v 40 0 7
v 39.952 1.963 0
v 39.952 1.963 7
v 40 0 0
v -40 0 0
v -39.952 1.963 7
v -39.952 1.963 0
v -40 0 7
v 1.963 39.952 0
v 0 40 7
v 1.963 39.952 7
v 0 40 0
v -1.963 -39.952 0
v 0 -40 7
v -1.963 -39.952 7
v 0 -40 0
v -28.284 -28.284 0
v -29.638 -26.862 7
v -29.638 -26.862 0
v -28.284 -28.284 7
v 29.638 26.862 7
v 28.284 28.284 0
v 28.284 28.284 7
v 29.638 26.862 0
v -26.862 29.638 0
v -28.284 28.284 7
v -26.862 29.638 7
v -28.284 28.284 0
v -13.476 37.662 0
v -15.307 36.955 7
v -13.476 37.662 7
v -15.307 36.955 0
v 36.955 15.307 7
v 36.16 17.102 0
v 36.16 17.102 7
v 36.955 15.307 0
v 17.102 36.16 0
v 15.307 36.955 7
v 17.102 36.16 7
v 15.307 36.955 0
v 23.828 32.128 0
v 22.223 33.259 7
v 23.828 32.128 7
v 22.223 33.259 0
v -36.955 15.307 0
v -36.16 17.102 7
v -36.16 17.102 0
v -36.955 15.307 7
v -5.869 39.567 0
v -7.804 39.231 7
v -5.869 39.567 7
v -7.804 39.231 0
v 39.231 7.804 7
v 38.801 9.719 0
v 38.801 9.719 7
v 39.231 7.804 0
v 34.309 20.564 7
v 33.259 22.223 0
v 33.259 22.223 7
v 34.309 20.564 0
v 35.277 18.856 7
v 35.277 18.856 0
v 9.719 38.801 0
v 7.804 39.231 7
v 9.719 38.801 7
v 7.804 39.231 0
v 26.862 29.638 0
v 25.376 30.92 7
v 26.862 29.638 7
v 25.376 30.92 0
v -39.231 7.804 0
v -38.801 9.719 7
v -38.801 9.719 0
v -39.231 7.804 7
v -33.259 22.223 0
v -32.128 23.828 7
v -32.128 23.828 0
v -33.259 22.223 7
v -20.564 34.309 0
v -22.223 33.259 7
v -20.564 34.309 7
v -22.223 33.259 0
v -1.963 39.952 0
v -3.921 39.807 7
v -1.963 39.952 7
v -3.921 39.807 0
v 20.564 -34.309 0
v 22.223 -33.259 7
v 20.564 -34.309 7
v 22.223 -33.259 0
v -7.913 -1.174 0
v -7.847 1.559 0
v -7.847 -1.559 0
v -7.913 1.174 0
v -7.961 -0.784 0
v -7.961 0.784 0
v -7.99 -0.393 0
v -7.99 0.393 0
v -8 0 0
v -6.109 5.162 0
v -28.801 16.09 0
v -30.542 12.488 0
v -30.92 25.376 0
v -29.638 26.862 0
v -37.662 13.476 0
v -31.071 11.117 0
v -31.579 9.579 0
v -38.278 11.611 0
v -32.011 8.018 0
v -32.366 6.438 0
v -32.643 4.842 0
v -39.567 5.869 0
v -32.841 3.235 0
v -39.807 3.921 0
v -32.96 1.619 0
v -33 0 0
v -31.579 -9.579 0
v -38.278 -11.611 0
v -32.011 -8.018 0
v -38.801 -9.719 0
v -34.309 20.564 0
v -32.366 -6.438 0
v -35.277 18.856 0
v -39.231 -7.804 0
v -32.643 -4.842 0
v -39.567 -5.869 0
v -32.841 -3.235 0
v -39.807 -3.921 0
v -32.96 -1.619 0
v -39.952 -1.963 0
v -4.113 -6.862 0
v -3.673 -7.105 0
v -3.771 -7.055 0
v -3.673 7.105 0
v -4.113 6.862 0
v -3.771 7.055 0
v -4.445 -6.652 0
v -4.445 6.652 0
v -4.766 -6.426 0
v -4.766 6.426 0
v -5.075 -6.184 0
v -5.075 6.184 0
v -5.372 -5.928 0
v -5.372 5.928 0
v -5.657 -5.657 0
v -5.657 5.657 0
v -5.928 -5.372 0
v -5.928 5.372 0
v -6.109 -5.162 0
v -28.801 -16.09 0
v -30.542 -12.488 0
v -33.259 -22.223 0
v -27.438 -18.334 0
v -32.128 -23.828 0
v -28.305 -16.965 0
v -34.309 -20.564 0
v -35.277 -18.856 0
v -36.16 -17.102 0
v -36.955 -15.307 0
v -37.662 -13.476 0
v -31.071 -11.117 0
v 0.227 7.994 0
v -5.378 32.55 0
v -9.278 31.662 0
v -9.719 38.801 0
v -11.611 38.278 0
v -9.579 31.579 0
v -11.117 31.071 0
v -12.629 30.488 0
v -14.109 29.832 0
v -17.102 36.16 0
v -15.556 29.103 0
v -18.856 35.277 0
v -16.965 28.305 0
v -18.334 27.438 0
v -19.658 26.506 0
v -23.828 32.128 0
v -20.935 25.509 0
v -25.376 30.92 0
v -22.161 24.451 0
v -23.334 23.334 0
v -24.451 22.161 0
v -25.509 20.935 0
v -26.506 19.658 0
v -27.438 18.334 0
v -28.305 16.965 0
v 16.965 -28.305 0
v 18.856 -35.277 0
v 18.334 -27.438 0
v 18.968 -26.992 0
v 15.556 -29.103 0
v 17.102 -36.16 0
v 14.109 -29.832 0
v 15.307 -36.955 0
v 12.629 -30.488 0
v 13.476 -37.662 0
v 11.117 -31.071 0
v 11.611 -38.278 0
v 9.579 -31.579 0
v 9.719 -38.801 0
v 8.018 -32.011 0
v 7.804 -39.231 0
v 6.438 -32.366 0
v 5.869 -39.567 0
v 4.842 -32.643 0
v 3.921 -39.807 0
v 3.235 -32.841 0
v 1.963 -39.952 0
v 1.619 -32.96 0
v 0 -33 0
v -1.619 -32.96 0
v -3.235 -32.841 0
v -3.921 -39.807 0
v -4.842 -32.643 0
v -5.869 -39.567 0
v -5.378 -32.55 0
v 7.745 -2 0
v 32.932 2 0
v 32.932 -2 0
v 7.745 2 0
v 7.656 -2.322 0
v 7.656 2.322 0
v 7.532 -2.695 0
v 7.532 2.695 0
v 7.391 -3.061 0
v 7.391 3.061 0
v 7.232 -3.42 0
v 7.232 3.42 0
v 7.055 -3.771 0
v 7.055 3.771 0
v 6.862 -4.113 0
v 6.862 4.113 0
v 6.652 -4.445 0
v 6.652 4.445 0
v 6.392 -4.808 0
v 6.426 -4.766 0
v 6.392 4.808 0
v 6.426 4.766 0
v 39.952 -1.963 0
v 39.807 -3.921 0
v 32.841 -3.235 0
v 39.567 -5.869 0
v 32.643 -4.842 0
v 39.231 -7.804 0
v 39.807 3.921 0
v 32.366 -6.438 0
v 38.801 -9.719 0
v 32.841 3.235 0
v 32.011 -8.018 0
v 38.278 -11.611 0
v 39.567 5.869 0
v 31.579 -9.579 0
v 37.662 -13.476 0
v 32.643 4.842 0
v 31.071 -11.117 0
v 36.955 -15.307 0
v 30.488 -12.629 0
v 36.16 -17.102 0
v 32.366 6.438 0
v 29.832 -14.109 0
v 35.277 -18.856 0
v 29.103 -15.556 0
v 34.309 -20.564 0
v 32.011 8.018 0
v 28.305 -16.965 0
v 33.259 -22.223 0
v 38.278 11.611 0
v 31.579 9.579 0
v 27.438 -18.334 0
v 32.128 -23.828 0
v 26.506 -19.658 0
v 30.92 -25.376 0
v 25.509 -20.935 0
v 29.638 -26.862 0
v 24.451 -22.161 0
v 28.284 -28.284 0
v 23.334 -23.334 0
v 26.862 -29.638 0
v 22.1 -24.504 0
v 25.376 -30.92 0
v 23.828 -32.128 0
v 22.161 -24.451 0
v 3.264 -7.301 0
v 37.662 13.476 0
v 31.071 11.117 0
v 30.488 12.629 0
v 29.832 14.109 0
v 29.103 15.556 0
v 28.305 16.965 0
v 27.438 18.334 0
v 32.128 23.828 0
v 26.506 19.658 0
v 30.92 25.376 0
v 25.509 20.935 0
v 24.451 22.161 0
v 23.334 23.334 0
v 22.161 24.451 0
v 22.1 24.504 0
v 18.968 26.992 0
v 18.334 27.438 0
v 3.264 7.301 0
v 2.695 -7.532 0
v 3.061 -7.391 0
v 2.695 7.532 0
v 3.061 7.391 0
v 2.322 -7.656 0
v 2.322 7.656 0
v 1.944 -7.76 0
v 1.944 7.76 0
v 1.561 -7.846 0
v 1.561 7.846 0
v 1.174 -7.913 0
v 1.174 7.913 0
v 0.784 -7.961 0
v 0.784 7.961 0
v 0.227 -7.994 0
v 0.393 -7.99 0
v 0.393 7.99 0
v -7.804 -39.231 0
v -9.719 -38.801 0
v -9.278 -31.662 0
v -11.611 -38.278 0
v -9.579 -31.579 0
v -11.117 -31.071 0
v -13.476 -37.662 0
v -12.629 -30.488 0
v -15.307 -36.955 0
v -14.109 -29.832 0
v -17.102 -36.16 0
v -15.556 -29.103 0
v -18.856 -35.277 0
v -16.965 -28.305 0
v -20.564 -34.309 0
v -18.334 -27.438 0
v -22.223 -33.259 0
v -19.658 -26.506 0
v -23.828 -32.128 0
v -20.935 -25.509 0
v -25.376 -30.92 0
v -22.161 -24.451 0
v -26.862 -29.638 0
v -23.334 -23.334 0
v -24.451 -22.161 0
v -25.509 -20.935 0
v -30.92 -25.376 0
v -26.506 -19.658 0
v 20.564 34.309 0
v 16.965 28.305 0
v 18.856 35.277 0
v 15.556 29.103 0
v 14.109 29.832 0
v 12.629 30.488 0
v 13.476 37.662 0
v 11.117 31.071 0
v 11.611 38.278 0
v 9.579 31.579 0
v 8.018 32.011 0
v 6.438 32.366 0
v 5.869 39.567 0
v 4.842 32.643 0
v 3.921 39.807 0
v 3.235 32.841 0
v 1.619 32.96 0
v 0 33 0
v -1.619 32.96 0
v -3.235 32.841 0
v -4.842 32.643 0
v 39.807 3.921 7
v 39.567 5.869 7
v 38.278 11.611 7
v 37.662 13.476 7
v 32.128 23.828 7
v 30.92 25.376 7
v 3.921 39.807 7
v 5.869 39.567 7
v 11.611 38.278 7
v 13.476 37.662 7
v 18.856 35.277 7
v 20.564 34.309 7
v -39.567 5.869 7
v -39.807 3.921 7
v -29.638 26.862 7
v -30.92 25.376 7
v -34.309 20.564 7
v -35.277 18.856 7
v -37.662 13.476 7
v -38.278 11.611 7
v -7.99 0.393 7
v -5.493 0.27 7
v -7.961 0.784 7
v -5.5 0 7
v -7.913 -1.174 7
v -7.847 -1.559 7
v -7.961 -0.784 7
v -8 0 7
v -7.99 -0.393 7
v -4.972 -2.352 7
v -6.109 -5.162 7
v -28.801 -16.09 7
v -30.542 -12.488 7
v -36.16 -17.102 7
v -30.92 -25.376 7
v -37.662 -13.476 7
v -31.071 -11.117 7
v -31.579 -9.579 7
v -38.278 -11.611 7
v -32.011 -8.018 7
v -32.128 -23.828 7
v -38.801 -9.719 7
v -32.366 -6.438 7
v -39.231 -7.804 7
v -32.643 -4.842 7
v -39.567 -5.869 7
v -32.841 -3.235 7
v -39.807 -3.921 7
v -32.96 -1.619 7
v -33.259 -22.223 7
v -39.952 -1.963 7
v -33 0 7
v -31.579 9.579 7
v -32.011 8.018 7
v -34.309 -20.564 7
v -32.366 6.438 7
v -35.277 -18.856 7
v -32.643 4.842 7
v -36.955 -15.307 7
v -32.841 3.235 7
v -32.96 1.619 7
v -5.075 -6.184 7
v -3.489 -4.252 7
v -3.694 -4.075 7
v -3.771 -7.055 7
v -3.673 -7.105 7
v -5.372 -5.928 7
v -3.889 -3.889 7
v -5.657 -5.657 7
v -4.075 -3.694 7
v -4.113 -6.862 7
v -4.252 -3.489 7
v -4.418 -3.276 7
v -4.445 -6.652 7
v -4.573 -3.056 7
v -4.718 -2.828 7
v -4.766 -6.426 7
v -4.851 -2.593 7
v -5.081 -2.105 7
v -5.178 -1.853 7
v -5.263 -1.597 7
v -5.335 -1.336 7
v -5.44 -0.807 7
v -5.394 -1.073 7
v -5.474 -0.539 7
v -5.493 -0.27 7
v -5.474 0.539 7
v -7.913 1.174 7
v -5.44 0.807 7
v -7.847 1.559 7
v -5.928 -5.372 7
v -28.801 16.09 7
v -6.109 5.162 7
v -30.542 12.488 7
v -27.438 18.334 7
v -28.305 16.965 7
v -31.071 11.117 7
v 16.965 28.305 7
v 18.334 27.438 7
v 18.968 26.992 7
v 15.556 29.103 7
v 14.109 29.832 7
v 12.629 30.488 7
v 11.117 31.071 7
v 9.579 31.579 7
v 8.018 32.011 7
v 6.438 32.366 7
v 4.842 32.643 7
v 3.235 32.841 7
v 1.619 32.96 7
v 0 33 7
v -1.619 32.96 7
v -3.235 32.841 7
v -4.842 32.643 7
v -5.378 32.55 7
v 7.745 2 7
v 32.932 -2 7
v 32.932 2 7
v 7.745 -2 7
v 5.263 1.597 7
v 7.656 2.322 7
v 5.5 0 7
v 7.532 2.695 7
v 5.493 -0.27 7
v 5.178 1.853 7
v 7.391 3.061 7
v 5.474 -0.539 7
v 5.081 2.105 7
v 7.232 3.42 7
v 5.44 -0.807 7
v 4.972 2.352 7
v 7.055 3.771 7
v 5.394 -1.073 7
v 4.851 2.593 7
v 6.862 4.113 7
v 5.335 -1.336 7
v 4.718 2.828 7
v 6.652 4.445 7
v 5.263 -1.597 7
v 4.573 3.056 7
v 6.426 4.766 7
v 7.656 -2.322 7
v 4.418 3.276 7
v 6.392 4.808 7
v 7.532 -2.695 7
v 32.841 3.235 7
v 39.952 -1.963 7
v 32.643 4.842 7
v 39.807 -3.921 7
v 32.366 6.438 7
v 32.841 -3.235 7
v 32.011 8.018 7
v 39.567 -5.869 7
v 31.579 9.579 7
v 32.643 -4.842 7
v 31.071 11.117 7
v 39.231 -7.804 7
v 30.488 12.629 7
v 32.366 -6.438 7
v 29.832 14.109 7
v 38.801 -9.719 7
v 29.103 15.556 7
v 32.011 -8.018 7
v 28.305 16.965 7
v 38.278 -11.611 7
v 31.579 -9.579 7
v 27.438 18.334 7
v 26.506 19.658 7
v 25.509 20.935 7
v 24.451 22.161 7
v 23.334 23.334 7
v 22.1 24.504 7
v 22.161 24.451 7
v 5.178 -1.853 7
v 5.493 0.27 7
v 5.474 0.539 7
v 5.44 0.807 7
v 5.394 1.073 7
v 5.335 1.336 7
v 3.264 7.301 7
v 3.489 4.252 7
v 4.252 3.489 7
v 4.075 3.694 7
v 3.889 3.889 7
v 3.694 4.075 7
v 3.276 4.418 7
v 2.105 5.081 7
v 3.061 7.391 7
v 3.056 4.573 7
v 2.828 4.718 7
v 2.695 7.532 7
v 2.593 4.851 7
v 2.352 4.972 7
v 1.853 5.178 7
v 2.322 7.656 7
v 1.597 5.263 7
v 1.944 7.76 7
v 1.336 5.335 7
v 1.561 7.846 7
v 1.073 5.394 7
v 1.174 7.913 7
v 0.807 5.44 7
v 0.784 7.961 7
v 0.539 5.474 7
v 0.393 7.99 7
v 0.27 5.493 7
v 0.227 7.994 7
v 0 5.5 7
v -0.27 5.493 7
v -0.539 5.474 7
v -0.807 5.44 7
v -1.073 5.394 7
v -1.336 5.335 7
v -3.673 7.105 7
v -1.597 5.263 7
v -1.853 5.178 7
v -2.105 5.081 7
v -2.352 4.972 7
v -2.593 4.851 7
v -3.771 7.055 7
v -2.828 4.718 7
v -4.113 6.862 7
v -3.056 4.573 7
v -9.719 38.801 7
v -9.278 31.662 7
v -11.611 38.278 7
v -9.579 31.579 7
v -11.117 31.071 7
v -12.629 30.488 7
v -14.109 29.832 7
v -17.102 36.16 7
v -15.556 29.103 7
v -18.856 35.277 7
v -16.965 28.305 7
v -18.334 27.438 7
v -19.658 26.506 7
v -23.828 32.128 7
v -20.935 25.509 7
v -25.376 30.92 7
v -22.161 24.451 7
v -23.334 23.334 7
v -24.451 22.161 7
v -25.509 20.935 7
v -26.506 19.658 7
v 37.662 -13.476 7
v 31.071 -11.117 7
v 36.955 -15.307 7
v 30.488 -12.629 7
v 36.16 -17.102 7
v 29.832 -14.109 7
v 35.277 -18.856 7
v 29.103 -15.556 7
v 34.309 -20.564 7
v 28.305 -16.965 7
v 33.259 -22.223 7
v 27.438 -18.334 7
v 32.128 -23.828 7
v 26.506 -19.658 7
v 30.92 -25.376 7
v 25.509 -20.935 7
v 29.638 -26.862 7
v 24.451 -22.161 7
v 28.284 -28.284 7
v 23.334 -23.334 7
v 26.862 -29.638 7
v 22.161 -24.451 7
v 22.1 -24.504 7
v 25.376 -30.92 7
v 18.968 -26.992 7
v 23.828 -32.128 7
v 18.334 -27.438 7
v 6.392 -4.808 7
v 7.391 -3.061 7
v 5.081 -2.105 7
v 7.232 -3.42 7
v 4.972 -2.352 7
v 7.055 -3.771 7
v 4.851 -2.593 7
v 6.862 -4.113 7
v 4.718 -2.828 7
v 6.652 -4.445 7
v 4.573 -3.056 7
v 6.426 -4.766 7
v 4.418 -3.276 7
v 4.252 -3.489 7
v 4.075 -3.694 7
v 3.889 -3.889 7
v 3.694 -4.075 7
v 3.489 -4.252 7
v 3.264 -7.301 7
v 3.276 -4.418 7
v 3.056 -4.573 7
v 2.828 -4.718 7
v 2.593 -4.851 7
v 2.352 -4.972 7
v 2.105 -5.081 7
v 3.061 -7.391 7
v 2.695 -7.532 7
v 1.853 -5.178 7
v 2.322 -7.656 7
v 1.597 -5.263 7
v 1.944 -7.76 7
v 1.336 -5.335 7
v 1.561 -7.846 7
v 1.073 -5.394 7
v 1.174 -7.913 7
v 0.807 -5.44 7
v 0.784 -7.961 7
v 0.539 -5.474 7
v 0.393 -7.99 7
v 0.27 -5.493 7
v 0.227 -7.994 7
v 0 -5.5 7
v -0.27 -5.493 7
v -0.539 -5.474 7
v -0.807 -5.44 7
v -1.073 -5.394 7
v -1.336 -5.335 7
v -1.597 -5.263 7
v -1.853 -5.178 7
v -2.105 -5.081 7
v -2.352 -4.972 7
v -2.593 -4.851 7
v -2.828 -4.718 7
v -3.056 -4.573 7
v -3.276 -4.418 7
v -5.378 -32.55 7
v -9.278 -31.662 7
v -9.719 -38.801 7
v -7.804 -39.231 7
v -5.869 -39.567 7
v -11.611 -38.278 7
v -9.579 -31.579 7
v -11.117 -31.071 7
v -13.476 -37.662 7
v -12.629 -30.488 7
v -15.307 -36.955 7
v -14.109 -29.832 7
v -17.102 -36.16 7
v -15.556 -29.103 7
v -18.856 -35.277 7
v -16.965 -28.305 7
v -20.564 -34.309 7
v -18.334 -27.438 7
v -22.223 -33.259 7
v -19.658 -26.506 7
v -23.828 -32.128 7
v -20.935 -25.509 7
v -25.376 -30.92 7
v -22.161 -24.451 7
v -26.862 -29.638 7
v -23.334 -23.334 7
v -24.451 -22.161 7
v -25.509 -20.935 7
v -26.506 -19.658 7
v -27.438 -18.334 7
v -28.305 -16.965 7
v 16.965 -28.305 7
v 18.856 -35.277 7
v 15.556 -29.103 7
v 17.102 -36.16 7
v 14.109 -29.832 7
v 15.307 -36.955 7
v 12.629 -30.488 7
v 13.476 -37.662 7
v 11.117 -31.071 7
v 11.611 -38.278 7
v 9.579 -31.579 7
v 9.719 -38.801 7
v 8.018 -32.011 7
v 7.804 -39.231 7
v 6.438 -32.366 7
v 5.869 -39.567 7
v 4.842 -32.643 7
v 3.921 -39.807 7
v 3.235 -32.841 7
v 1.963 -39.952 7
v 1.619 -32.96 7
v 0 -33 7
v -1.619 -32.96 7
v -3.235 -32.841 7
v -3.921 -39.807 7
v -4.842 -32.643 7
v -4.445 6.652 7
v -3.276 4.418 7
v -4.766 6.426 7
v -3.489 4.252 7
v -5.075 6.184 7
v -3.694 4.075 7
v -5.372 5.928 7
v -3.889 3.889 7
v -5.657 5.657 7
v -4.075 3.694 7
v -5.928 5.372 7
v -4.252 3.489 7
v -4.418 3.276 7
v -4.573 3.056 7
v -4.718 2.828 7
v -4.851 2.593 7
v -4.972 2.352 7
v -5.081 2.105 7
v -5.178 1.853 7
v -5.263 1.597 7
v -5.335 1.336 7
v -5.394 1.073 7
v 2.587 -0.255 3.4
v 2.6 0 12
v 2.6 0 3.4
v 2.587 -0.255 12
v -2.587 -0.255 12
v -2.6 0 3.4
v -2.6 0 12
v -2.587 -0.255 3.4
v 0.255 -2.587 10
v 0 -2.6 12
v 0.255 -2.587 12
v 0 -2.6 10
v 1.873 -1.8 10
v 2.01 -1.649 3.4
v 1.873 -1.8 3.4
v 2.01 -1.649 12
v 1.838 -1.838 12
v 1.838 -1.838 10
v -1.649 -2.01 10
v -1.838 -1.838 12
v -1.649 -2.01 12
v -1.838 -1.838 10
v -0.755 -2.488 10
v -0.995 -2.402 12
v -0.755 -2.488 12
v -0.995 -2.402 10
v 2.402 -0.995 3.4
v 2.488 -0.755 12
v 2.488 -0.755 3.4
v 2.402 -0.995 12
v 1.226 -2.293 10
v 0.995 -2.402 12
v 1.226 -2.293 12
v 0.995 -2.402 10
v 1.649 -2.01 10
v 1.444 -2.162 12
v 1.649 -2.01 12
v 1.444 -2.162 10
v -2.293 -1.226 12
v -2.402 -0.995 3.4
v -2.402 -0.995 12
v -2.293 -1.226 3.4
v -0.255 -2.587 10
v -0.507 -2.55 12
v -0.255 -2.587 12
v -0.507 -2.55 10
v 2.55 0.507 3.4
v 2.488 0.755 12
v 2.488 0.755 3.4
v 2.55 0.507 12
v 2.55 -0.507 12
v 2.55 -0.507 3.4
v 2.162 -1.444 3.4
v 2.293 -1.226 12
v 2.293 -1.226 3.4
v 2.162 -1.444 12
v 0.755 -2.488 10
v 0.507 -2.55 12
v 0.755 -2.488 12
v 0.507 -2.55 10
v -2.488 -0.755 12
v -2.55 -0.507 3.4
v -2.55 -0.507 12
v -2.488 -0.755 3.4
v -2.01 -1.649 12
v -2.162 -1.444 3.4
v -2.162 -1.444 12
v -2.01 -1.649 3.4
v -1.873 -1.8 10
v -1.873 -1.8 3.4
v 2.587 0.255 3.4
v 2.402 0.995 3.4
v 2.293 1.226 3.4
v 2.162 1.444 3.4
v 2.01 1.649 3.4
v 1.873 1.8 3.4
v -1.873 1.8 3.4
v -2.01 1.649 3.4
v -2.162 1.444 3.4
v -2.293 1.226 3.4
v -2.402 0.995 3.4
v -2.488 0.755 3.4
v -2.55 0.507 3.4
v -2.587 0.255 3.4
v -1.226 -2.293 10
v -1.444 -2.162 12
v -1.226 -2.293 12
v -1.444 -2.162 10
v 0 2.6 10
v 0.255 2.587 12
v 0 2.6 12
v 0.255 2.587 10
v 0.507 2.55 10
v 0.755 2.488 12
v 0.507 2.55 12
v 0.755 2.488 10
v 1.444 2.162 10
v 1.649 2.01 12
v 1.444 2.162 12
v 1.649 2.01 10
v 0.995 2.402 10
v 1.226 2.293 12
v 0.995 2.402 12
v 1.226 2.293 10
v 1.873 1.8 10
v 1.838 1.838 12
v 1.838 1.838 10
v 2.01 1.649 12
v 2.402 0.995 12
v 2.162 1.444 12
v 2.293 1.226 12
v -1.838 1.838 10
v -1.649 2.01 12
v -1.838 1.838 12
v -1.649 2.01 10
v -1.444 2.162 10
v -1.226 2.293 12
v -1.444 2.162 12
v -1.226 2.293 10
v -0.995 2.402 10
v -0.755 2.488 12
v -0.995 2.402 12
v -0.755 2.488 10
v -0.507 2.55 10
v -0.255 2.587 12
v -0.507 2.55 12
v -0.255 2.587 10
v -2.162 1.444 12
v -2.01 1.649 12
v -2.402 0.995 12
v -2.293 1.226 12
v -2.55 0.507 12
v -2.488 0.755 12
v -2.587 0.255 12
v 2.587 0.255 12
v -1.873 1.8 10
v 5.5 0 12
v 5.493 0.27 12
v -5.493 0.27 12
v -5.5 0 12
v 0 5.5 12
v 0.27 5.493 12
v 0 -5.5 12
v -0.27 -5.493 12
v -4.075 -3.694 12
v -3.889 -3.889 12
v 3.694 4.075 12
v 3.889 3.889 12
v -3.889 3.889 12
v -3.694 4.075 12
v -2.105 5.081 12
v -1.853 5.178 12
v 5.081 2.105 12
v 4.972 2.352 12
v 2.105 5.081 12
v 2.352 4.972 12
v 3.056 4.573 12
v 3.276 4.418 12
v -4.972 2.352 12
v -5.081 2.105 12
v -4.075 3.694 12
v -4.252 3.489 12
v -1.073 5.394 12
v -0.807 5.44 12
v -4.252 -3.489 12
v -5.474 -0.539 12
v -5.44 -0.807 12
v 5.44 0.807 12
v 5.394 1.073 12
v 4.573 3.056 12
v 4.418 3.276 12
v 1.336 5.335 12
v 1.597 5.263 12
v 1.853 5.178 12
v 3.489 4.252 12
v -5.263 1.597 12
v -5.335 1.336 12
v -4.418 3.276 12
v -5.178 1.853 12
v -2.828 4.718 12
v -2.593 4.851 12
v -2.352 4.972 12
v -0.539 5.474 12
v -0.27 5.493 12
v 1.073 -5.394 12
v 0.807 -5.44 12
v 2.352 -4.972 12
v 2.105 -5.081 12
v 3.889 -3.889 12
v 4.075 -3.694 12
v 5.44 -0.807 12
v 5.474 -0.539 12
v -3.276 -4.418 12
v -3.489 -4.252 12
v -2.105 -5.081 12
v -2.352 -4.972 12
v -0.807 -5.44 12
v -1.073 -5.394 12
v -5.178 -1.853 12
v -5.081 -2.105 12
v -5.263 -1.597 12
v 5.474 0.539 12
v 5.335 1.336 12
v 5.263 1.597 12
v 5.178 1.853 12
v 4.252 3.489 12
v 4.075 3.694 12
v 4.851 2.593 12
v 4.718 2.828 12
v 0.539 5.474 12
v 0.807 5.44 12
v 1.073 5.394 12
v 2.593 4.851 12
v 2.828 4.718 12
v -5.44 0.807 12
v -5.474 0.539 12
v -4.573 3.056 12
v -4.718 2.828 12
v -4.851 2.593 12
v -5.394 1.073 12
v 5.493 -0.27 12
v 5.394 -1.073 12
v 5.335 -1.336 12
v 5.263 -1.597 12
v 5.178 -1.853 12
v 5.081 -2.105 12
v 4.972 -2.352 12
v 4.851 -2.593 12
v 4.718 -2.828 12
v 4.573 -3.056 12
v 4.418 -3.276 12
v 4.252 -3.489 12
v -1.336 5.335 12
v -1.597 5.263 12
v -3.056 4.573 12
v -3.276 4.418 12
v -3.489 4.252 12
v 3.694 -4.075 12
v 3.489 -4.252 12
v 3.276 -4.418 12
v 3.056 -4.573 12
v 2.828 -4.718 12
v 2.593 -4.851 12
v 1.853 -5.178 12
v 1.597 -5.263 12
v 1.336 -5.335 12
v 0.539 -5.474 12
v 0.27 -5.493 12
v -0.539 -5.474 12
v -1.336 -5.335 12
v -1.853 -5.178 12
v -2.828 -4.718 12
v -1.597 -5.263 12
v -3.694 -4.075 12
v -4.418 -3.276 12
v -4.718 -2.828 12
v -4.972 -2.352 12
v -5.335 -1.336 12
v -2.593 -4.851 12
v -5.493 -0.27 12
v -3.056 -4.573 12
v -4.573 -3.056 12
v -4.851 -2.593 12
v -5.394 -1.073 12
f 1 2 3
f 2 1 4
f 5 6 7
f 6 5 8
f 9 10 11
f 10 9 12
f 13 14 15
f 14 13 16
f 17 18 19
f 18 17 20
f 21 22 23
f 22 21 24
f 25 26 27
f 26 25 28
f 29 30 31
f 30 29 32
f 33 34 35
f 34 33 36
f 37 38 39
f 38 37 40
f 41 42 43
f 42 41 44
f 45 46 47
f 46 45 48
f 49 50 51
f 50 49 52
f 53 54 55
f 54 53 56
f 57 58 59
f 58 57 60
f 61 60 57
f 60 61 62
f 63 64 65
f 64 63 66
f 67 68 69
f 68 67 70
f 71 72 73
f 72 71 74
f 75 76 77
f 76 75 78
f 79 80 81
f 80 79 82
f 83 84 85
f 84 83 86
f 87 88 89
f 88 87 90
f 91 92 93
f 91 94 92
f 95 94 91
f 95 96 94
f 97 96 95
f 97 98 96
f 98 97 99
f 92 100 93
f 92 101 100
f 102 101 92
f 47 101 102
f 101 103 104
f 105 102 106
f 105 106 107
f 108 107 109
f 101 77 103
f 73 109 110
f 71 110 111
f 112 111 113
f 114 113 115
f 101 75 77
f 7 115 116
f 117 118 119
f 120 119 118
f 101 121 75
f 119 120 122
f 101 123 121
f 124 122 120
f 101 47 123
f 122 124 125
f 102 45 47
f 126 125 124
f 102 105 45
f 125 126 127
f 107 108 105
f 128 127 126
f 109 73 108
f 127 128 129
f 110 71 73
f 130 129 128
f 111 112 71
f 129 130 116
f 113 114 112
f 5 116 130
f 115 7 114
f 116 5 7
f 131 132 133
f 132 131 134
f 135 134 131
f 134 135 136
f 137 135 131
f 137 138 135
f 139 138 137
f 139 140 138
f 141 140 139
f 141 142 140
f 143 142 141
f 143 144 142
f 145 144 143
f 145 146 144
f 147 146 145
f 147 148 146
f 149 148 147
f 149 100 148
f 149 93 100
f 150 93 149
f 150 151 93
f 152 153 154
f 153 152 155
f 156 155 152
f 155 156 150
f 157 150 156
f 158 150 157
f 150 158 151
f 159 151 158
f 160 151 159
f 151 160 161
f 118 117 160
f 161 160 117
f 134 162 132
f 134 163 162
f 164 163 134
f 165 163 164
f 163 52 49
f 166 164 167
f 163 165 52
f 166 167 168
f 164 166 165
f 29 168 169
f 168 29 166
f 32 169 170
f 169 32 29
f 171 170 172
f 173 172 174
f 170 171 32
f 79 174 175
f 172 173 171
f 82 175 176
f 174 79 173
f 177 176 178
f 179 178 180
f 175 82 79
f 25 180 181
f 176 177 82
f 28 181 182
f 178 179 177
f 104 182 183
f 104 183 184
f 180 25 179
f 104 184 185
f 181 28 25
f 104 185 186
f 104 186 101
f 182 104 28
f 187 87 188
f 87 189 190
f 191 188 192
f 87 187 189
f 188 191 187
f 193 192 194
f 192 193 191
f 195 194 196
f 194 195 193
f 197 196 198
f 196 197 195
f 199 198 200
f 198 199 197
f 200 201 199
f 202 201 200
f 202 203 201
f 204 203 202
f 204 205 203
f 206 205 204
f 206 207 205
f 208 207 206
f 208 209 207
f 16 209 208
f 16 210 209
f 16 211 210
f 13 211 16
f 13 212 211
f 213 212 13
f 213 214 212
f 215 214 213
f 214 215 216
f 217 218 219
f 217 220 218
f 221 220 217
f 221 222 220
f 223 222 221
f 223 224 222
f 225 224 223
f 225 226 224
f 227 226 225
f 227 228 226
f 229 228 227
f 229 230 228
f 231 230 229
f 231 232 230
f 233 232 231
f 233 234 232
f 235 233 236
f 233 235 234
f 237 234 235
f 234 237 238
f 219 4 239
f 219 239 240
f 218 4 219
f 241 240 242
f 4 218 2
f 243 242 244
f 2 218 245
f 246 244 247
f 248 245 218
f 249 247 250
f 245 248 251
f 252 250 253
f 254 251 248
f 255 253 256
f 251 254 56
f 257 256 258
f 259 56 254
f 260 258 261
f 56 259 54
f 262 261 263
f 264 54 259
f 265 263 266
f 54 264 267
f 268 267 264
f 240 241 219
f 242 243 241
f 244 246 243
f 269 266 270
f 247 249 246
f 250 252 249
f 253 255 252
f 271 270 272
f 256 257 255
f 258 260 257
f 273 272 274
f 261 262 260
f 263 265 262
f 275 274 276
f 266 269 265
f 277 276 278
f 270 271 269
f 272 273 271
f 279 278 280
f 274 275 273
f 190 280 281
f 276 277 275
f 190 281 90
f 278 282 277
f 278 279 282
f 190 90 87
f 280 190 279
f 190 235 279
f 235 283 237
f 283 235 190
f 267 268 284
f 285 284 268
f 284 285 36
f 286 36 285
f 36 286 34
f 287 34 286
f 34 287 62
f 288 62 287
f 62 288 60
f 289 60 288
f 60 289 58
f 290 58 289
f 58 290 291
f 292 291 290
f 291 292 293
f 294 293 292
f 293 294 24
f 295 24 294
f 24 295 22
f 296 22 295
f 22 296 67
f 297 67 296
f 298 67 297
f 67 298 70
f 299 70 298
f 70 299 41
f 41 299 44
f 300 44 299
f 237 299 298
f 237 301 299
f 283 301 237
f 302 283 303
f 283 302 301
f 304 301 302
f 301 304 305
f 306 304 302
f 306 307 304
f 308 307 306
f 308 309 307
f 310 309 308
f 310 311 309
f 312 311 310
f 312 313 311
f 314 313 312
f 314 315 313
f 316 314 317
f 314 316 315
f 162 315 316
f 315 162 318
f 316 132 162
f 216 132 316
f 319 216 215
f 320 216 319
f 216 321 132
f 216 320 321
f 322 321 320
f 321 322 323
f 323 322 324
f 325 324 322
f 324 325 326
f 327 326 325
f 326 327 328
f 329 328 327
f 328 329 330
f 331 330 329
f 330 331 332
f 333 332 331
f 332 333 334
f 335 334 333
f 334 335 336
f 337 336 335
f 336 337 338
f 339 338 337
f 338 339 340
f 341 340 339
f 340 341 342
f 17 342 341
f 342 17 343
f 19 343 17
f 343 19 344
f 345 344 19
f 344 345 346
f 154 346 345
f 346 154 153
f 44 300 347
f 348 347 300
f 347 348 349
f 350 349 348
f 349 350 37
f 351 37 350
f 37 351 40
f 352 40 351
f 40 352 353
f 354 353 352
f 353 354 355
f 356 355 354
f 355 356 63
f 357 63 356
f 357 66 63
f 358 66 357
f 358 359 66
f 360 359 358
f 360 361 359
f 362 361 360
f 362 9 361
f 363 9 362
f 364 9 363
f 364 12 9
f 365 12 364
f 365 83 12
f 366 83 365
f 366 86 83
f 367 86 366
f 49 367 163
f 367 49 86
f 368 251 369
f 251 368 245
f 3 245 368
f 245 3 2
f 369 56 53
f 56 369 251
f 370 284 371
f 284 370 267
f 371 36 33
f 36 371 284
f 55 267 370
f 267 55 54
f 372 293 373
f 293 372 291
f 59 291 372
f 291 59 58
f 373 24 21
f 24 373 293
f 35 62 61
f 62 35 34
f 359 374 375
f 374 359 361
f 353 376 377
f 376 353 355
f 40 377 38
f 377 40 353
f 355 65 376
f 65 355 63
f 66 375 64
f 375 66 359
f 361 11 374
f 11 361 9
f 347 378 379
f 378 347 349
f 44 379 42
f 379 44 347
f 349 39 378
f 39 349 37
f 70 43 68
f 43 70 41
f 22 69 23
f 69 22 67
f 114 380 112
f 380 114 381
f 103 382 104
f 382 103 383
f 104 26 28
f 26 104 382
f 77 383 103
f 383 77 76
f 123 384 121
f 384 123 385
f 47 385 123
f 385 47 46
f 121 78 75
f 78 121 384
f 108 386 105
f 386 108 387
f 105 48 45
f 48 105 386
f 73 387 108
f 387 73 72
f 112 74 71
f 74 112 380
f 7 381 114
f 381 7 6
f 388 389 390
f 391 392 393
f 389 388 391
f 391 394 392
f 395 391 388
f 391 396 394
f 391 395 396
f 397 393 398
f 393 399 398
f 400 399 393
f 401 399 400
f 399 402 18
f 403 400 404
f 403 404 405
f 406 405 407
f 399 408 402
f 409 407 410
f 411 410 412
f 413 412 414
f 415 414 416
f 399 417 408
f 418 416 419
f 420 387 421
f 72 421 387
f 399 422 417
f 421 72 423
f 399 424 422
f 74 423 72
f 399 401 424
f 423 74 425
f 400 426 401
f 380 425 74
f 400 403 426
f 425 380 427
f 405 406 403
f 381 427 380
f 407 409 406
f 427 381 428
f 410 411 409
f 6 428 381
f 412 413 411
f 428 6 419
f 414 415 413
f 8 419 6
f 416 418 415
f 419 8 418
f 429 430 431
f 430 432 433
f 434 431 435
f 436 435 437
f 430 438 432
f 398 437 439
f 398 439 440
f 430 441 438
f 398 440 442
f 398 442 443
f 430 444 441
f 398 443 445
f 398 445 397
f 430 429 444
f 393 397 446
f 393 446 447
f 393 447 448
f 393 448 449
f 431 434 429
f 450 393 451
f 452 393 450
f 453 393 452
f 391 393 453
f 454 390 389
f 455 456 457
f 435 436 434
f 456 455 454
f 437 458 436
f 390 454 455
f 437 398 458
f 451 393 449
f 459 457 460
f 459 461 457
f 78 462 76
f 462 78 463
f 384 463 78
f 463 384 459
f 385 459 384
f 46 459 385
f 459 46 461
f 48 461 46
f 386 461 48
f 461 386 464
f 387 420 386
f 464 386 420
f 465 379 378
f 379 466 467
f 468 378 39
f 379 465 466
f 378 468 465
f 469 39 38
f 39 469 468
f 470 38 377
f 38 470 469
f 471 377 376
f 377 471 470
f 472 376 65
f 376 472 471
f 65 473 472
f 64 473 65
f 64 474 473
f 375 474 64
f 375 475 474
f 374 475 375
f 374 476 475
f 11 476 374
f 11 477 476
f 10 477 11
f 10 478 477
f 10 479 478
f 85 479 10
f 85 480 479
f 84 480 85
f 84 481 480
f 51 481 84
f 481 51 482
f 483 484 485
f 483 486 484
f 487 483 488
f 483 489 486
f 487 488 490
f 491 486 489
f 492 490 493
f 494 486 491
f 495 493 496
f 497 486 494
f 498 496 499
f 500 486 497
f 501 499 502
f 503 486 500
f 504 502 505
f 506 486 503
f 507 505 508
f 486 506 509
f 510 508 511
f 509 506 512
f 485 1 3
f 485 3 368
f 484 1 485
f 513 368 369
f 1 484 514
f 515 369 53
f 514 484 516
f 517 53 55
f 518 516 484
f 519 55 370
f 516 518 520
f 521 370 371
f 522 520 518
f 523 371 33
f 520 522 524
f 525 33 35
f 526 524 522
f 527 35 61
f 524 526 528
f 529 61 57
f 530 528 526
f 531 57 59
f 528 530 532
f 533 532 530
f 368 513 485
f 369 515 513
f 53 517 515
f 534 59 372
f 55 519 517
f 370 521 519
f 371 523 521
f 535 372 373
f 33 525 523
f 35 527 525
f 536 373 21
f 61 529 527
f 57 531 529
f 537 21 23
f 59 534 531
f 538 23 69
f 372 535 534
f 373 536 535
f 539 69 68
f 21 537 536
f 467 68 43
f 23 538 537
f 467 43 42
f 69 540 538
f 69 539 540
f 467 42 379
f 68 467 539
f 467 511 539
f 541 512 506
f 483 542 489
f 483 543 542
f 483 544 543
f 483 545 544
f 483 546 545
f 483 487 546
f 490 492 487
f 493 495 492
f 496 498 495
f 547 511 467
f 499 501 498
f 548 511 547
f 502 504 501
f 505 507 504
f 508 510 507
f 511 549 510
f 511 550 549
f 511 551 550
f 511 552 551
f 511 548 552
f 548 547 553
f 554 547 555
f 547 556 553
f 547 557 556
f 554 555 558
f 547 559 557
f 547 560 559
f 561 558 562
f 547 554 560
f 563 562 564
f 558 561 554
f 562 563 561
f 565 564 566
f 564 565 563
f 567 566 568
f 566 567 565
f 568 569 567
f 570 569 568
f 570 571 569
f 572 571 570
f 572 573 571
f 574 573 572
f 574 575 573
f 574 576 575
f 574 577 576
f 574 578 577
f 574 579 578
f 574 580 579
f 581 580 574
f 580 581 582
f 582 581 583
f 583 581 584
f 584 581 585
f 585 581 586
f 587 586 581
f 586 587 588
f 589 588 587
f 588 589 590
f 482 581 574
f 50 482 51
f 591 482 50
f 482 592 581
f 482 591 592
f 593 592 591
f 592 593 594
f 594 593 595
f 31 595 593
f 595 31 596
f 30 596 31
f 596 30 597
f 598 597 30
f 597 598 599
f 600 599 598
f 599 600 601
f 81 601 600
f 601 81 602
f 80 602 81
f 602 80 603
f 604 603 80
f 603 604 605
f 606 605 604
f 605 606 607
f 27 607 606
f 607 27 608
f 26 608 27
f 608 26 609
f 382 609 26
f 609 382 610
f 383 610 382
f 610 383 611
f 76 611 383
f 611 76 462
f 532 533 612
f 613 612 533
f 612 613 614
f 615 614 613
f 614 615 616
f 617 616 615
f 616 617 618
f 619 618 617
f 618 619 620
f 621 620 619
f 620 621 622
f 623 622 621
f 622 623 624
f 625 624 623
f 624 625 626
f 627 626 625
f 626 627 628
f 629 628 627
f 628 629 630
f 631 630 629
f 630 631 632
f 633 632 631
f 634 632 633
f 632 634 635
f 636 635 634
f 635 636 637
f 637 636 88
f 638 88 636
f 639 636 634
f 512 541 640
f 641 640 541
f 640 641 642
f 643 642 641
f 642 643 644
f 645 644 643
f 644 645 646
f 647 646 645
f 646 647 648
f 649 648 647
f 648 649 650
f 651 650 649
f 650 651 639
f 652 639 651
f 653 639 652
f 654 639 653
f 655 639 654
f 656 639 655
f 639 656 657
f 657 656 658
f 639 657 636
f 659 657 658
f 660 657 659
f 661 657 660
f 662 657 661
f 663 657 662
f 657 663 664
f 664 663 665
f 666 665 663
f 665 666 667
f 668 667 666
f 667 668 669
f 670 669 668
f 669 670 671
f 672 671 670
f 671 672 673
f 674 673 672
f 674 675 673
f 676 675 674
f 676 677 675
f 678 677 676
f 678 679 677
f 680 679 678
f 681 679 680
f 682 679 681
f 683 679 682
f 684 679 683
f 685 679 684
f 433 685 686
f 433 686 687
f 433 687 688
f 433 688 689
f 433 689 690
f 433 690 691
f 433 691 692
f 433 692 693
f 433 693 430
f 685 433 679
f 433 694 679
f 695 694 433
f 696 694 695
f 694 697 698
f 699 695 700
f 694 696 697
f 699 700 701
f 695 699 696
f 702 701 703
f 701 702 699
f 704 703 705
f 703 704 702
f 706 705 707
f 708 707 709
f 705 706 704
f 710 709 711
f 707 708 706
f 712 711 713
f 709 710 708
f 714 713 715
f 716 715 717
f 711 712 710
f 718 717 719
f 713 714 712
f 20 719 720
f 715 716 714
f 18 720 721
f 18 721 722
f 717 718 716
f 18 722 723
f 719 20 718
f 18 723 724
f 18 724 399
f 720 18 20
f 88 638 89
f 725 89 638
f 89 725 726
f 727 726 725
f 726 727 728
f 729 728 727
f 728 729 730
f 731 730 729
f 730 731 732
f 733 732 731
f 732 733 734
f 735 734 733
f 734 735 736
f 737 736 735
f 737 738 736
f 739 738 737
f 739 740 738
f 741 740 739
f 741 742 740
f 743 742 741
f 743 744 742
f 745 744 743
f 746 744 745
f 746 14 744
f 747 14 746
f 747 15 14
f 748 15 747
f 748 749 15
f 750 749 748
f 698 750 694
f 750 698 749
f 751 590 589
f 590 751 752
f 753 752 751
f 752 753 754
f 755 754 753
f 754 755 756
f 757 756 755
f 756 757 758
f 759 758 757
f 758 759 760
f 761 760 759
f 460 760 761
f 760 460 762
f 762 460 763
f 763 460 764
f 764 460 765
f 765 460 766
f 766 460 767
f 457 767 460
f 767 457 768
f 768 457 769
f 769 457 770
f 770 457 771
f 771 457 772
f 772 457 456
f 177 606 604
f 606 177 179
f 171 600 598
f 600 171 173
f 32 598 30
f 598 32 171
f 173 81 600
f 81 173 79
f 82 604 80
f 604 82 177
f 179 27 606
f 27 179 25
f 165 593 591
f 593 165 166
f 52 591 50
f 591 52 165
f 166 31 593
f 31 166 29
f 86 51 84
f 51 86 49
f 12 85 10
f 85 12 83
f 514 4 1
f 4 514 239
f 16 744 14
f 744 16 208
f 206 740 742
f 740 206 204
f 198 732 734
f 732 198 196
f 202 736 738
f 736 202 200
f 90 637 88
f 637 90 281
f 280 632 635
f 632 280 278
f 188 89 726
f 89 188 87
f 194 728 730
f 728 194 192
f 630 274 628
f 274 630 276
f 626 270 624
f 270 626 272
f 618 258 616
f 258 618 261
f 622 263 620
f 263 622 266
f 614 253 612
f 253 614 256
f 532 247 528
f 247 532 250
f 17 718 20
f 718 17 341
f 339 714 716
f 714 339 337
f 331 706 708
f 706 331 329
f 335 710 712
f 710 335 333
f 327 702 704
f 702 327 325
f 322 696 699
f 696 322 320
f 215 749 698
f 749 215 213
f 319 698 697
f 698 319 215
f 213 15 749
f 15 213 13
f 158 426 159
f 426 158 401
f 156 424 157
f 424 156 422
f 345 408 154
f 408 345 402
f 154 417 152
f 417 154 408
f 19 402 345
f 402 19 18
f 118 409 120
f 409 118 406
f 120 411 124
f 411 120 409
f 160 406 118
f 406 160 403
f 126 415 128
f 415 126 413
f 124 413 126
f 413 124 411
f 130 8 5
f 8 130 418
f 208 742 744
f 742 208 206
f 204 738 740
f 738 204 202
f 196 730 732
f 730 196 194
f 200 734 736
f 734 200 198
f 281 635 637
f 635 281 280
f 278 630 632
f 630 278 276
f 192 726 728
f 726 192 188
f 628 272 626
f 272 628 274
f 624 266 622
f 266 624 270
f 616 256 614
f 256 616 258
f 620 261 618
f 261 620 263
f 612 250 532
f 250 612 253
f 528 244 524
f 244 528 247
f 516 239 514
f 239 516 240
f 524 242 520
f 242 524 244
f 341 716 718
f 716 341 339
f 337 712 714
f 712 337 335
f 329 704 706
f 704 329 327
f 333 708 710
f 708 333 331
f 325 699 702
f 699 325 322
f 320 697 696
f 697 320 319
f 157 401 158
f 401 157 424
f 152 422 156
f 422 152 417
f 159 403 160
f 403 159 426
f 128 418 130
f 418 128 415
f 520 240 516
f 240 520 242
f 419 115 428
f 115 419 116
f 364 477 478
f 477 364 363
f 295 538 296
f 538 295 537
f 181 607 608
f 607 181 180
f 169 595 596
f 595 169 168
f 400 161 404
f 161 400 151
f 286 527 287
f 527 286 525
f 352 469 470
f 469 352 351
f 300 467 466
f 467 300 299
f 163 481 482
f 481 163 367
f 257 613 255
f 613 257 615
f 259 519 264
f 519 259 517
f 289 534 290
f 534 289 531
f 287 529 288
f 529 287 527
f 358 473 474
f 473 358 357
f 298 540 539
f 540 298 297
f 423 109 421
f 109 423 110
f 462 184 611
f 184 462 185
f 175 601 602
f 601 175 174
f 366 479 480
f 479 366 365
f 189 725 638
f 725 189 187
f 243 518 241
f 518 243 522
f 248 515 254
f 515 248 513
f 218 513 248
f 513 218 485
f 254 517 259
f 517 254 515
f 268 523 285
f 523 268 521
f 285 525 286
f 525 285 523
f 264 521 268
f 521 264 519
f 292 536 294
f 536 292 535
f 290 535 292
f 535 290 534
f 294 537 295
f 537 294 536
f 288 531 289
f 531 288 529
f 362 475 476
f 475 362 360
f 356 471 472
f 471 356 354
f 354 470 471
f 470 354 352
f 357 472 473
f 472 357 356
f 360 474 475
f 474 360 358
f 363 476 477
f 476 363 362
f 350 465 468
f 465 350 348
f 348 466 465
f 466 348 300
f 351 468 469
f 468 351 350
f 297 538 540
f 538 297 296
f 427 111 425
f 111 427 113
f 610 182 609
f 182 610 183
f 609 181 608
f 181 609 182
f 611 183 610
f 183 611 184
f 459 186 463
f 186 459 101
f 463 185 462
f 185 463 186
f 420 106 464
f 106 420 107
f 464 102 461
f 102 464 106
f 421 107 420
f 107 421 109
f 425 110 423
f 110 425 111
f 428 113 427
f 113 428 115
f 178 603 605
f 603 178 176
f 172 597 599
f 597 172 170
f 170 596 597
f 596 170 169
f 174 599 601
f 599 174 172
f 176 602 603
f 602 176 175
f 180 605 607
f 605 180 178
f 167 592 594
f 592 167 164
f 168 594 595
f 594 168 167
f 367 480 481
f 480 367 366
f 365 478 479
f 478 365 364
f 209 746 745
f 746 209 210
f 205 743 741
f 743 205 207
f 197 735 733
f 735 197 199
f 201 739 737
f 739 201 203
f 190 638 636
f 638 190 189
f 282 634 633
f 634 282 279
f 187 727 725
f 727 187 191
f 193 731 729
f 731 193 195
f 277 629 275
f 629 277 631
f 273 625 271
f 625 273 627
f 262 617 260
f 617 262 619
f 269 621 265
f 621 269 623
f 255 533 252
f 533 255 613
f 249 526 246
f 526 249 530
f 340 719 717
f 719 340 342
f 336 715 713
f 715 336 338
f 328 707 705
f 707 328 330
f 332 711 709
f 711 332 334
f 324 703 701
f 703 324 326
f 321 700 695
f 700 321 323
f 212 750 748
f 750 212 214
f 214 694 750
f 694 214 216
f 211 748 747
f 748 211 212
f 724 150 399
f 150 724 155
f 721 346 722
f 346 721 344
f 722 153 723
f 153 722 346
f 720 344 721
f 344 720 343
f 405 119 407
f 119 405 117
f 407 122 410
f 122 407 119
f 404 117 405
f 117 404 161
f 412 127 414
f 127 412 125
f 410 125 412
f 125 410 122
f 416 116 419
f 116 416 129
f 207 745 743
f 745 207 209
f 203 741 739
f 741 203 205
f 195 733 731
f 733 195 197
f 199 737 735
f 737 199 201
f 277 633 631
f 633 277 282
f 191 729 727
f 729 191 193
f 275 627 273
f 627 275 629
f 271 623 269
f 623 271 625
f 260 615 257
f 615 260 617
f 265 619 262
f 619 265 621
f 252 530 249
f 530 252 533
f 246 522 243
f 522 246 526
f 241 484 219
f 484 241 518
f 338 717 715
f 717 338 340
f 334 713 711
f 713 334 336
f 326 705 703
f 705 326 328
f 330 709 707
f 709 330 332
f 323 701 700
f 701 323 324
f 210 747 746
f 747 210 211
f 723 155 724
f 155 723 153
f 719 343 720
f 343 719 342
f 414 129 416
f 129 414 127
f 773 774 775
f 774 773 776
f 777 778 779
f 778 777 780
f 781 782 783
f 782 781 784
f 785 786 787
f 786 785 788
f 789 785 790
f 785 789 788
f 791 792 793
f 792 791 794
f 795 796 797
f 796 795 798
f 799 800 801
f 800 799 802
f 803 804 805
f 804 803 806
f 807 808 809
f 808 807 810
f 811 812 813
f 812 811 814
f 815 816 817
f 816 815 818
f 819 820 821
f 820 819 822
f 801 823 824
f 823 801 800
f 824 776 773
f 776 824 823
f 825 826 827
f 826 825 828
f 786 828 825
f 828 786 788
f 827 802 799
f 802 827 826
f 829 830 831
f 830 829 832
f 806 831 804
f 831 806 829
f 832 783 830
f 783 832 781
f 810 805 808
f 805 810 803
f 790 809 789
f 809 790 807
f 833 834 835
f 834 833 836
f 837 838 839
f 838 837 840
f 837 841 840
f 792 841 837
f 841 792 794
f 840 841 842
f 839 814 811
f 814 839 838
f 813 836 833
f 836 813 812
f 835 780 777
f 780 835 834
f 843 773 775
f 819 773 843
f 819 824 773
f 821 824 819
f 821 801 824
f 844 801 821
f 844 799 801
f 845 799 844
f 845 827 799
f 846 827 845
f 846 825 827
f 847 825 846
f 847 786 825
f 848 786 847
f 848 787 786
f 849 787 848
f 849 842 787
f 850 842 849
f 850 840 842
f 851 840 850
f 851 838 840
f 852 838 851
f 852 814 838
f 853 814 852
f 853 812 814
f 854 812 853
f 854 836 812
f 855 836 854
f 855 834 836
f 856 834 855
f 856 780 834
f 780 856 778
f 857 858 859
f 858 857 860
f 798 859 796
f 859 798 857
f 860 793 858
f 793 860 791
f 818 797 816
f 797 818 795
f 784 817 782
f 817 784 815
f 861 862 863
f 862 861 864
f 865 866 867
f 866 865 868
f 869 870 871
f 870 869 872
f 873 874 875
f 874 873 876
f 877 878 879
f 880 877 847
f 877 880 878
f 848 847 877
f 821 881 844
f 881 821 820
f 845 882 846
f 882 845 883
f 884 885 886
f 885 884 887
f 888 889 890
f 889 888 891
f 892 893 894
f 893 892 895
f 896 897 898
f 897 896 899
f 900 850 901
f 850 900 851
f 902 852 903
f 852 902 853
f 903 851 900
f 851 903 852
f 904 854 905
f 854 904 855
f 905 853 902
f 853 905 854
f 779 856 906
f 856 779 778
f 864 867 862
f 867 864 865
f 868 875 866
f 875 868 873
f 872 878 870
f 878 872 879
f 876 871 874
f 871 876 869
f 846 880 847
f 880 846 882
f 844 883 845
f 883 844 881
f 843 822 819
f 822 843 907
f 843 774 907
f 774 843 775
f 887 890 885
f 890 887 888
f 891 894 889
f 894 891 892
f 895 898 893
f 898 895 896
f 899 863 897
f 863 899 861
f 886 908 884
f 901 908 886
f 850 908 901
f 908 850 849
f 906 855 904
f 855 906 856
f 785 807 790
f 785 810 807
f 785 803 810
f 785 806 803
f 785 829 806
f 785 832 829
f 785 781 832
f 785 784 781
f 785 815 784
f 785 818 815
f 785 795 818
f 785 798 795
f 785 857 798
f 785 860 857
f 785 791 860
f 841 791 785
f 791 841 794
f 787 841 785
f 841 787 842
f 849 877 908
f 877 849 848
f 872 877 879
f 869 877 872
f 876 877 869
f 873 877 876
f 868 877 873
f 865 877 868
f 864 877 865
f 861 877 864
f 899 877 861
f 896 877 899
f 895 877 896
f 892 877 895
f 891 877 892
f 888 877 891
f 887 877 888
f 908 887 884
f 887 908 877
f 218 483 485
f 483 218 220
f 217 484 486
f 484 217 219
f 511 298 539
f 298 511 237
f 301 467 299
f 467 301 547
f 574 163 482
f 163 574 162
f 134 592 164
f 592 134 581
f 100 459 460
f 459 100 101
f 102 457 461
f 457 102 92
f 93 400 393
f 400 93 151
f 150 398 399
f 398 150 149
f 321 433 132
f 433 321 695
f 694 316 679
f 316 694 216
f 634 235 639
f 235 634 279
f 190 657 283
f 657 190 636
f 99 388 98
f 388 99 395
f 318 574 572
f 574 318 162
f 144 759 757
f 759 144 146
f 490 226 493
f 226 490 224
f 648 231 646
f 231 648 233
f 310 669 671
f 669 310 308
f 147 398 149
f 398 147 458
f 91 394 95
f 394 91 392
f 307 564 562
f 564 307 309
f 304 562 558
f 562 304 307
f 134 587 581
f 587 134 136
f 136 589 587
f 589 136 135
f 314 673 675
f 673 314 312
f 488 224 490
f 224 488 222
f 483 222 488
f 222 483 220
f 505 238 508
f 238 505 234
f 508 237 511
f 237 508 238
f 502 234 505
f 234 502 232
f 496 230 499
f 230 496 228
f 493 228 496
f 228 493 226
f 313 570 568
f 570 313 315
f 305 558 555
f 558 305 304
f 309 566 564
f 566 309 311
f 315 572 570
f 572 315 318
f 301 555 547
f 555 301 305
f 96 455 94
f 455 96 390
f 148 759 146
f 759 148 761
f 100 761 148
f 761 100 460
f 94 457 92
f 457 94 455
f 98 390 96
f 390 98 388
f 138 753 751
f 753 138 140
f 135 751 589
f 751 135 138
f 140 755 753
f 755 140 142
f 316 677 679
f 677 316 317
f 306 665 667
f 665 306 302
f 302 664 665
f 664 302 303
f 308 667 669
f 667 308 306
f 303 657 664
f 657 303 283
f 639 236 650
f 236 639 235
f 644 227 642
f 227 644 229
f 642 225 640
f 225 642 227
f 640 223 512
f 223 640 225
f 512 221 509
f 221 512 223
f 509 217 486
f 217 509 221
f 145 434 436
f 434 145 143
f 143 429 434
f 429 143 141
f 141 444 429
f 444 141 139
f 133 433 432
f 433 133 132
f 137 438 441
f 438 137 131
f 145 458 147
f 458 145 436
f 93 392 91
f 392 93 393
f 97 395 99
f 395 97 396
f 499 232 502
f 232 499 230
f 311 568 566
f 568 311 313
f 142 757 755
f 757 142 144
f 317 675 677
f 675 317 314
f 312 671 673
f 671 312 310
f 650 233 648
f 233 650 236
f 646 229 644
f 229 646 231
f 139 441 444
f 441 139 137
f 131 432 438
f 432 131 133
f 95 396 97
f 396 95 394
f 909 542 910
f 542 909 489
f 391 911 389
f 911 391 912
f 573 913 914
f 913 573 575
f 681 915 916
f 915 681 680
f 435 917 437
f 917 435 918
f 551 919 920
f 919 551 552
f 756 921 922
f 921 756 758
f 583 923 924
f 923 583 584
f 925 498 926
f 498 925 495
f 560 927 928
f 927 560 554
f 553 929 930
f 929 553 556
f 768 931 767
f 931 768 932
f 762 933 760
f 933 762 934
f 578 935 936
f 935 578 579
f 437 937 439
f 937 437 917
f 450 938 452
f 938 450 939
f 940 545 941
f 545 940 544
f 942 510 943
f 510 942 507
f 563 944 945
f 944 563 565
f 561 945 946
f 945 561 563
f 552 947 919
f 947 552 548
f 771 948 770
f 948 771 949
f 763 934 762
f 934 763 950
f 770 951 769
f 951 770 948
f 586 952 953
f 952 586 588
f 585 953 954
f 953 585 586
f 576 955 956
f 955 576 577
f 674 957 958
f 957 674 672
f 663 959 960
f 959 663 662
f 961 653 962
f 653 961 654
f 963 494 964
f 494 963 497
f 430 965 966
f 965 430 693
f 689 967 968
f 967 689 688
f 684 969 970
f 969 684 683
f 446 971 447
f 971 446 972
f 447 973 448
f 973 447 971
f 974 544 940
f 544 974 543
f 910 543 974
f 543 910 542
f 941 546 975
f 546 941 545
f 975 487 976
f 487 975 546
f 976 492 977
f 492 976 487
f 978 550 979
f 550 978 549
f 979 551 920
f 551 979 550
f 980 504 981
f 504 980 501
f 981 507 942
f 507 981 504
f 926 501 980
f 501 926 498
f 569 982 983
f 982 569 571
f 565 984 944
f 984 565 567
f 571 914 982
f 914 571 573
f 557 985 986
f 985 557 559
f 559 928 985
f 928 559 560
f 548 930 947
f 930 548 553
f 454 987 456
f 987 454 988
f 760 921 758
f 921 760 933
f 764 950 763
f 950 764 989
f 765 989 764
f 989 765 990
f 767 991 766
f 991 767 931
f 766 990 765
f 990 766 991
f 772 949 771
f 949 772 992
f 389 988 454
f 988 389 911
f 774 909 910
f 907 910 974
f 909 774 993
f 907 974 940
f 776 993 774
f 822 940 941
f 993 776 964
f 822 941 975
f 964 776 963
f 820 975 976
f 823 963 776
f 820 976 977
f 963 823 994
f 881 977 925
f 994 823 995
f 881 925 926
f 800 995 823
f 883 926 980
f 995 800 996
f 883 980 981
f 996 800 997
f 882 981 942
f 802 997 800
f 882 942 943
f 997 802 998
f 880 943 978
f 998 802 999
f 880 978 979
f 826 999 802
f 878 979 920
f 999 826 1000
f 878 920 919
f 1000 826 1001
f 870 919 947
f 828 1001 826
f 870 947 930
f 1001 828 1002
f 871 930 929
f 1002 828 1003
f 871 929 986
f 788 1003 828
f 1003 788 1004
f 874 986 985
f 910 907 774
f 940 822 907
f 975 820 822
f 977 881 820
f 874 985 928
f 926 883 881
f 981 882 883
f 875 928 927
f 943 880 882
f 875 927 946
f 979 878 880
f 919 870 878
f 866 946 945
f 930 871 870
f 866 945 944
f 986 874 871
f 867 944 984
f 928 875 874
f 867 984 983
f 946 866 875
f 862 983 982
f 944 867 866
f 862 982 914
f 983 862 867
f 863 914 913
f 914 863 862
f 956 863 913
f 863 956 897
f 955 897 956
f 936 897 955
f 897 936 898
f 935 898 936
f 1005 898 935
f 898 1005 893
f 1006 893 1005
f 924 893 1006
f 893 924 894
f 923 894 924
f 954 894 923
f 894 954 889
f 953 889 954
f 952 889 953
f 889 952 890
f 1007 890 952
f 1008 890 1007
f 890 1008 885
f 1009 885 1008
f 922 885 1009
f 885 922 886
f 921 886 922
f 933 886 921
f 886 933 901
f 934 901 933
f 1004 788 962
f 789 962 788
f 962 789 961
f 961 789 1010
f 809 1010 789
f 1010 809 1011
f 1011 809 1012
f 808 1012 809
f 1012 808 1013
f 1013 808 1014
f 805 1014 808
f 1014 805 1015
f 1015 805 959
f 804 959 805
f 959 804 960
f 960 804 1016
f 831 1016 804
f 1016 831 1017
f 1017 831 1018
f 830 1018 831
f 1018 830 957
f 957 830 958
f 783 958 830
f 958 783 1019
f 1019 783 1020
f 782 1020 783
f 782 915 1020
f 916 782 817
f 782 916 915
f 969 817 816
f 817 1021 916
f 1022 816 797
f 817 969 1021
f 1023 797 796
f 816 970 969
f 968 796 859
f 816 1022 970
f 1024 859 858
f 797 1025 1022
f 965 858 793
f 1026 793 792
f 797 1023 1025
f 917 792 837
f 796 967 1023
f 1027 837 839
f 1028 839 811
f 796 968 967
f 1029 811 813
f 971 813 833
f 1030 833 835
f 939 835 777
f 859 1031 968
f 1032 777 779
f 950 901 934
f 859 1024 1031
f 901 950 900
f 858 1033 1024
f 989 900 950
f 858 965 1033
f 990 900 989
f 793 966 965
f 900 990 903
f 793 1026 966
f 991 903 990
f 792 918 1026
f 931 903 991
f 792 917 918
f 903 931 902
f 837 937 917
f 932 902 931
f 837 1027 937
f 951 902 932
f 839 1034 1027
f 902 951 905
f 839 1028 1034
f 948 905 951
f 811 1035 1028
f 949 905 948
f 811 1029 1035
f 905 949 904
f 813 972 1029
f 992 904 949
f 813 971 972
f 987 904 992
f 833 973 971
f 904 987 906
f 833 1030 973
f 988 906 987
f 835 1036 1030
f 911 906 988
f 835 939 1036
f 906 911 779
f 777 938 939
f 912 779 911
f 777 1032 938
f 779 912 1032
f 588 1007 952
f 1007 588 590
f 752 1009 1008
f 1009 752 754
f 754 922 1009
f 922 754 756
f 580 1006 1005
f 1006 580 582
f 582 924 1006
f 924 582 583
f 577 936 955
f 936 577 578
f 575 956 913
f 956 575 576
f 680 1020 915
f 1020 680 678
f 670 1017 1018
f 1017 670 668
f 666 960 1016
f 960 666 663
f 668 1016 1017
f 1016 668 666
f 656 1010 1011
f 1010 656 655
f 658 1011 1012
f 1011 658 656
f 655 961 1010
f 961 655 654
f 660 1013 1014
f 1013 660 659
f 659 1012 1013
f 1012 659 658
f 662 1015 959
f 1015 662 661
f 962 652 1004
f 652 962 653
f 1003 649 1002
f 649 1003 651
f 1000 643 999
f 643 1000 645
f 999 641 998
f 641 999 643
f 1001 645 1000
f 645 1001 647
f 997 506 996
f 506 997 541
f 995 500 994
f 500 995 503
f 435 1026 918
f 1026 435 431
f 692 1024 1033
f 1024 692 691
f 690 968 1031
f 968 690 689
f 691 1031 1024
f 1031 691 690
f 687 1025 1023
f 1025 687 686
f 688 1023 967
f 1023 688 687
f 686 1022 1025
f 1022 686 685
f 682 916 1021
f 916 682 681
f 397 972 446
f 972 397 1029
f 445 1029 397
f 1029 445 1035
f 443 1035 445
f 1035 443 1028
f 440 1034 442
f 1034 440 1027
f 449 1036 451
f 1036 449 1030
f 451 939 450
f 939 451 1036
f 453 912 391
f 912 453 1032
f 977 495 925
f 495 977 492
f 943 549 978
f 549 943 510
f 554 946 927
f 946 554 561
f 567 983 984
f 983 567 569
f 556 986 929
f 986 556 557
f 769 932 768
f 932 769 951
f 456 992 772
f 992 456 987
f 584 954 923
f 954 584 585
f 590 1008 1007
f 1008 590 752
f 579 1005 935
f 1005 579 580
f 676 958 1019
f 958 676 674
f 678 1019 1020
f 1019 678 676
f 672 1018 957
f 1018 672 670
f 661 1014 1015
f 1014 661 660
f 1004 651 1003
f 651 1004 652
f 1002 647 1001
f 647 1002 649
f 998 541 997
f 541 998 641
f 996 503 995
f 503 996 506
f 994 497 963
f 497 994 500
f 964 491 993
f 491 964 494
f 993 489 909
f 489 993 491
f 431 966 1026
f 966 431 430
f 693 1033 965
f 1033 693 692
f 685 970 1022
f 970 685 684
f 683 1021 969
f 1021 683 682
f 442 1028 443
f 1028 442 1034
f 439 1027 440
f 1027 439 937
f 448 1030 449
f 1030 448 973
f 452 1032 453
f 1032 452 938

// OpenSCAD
// file: Wheel.scad
$fn = 128;

module wheel(spokeCount = 12) {
    module spoke() {
        translate([0, -2, 0]) cube([38, 4, 7]); 
        }

    union() {
        difference() {
            cylinder(h = 7, r = 40);
            translate([0,0,-1]) cylinder(h = 10, r = 33);
            }

        for (az = [0 : spokeCount])
            rotate([0, 0, az*(360/spokeCount)]) spoke(); 
        
        cylinder(h = 7, r = 8);
        cylinder(h = 12, r = 5.5);
        }
    }

wheel(3);
// file: StepperMotor28BYJ_48.scad
//MotorCut_28BYJ_48();
//AxisCut_28BYJ_48();

module MotorCut_28BYJ_48()
{
	union()
	{
		cylinder(d=29.2,h=25,$fn=64);
		translate([0,-10.6,12.5])
		cube([16,16,25], center=true);
		hull()
		{
			translate([17.5,0,0])
			cylinder(d=8, h=25, $fn=64);
			translate([-17.5,0,0])
			cylinder(d=8, h=25, $fn=64);
		}
		translate([17.5,0,-1])
		cylinder(d=3.8,h=50,$fn=64,center=true);
		translate([-17.5,0,-1])
		cylinder(d=3.8,h=50,$fn=64,center=true);
		translate([0,8,-12])
		cylinder(d=12,h=28,$fn=64,center=true);
	}
}

module AxisCut_28BYJ_48()
{
    translate([0,0,-2])
	difference()
	{
		cylinder(d=5.2,h=10.6,$fn=64);
		translate([0,4.8,8])
		cube([10,6,8], center=true);
		translate([0,-4.8,8])
		cube([10,6,8], center=true);
	}
}
// main file
use <StepperMotor28BYJ_48.scad>
use <Wheel.scad>

module wheel28BYJ_48(spokeCount = 12)
{
    difference()
    {
        wheel(spokeCount);
        translate([0,0,12])
            rotate([180,0,0])
                AxisCut_28BYJ_48();
    }   
}

wheel28BYJ_48(7);
